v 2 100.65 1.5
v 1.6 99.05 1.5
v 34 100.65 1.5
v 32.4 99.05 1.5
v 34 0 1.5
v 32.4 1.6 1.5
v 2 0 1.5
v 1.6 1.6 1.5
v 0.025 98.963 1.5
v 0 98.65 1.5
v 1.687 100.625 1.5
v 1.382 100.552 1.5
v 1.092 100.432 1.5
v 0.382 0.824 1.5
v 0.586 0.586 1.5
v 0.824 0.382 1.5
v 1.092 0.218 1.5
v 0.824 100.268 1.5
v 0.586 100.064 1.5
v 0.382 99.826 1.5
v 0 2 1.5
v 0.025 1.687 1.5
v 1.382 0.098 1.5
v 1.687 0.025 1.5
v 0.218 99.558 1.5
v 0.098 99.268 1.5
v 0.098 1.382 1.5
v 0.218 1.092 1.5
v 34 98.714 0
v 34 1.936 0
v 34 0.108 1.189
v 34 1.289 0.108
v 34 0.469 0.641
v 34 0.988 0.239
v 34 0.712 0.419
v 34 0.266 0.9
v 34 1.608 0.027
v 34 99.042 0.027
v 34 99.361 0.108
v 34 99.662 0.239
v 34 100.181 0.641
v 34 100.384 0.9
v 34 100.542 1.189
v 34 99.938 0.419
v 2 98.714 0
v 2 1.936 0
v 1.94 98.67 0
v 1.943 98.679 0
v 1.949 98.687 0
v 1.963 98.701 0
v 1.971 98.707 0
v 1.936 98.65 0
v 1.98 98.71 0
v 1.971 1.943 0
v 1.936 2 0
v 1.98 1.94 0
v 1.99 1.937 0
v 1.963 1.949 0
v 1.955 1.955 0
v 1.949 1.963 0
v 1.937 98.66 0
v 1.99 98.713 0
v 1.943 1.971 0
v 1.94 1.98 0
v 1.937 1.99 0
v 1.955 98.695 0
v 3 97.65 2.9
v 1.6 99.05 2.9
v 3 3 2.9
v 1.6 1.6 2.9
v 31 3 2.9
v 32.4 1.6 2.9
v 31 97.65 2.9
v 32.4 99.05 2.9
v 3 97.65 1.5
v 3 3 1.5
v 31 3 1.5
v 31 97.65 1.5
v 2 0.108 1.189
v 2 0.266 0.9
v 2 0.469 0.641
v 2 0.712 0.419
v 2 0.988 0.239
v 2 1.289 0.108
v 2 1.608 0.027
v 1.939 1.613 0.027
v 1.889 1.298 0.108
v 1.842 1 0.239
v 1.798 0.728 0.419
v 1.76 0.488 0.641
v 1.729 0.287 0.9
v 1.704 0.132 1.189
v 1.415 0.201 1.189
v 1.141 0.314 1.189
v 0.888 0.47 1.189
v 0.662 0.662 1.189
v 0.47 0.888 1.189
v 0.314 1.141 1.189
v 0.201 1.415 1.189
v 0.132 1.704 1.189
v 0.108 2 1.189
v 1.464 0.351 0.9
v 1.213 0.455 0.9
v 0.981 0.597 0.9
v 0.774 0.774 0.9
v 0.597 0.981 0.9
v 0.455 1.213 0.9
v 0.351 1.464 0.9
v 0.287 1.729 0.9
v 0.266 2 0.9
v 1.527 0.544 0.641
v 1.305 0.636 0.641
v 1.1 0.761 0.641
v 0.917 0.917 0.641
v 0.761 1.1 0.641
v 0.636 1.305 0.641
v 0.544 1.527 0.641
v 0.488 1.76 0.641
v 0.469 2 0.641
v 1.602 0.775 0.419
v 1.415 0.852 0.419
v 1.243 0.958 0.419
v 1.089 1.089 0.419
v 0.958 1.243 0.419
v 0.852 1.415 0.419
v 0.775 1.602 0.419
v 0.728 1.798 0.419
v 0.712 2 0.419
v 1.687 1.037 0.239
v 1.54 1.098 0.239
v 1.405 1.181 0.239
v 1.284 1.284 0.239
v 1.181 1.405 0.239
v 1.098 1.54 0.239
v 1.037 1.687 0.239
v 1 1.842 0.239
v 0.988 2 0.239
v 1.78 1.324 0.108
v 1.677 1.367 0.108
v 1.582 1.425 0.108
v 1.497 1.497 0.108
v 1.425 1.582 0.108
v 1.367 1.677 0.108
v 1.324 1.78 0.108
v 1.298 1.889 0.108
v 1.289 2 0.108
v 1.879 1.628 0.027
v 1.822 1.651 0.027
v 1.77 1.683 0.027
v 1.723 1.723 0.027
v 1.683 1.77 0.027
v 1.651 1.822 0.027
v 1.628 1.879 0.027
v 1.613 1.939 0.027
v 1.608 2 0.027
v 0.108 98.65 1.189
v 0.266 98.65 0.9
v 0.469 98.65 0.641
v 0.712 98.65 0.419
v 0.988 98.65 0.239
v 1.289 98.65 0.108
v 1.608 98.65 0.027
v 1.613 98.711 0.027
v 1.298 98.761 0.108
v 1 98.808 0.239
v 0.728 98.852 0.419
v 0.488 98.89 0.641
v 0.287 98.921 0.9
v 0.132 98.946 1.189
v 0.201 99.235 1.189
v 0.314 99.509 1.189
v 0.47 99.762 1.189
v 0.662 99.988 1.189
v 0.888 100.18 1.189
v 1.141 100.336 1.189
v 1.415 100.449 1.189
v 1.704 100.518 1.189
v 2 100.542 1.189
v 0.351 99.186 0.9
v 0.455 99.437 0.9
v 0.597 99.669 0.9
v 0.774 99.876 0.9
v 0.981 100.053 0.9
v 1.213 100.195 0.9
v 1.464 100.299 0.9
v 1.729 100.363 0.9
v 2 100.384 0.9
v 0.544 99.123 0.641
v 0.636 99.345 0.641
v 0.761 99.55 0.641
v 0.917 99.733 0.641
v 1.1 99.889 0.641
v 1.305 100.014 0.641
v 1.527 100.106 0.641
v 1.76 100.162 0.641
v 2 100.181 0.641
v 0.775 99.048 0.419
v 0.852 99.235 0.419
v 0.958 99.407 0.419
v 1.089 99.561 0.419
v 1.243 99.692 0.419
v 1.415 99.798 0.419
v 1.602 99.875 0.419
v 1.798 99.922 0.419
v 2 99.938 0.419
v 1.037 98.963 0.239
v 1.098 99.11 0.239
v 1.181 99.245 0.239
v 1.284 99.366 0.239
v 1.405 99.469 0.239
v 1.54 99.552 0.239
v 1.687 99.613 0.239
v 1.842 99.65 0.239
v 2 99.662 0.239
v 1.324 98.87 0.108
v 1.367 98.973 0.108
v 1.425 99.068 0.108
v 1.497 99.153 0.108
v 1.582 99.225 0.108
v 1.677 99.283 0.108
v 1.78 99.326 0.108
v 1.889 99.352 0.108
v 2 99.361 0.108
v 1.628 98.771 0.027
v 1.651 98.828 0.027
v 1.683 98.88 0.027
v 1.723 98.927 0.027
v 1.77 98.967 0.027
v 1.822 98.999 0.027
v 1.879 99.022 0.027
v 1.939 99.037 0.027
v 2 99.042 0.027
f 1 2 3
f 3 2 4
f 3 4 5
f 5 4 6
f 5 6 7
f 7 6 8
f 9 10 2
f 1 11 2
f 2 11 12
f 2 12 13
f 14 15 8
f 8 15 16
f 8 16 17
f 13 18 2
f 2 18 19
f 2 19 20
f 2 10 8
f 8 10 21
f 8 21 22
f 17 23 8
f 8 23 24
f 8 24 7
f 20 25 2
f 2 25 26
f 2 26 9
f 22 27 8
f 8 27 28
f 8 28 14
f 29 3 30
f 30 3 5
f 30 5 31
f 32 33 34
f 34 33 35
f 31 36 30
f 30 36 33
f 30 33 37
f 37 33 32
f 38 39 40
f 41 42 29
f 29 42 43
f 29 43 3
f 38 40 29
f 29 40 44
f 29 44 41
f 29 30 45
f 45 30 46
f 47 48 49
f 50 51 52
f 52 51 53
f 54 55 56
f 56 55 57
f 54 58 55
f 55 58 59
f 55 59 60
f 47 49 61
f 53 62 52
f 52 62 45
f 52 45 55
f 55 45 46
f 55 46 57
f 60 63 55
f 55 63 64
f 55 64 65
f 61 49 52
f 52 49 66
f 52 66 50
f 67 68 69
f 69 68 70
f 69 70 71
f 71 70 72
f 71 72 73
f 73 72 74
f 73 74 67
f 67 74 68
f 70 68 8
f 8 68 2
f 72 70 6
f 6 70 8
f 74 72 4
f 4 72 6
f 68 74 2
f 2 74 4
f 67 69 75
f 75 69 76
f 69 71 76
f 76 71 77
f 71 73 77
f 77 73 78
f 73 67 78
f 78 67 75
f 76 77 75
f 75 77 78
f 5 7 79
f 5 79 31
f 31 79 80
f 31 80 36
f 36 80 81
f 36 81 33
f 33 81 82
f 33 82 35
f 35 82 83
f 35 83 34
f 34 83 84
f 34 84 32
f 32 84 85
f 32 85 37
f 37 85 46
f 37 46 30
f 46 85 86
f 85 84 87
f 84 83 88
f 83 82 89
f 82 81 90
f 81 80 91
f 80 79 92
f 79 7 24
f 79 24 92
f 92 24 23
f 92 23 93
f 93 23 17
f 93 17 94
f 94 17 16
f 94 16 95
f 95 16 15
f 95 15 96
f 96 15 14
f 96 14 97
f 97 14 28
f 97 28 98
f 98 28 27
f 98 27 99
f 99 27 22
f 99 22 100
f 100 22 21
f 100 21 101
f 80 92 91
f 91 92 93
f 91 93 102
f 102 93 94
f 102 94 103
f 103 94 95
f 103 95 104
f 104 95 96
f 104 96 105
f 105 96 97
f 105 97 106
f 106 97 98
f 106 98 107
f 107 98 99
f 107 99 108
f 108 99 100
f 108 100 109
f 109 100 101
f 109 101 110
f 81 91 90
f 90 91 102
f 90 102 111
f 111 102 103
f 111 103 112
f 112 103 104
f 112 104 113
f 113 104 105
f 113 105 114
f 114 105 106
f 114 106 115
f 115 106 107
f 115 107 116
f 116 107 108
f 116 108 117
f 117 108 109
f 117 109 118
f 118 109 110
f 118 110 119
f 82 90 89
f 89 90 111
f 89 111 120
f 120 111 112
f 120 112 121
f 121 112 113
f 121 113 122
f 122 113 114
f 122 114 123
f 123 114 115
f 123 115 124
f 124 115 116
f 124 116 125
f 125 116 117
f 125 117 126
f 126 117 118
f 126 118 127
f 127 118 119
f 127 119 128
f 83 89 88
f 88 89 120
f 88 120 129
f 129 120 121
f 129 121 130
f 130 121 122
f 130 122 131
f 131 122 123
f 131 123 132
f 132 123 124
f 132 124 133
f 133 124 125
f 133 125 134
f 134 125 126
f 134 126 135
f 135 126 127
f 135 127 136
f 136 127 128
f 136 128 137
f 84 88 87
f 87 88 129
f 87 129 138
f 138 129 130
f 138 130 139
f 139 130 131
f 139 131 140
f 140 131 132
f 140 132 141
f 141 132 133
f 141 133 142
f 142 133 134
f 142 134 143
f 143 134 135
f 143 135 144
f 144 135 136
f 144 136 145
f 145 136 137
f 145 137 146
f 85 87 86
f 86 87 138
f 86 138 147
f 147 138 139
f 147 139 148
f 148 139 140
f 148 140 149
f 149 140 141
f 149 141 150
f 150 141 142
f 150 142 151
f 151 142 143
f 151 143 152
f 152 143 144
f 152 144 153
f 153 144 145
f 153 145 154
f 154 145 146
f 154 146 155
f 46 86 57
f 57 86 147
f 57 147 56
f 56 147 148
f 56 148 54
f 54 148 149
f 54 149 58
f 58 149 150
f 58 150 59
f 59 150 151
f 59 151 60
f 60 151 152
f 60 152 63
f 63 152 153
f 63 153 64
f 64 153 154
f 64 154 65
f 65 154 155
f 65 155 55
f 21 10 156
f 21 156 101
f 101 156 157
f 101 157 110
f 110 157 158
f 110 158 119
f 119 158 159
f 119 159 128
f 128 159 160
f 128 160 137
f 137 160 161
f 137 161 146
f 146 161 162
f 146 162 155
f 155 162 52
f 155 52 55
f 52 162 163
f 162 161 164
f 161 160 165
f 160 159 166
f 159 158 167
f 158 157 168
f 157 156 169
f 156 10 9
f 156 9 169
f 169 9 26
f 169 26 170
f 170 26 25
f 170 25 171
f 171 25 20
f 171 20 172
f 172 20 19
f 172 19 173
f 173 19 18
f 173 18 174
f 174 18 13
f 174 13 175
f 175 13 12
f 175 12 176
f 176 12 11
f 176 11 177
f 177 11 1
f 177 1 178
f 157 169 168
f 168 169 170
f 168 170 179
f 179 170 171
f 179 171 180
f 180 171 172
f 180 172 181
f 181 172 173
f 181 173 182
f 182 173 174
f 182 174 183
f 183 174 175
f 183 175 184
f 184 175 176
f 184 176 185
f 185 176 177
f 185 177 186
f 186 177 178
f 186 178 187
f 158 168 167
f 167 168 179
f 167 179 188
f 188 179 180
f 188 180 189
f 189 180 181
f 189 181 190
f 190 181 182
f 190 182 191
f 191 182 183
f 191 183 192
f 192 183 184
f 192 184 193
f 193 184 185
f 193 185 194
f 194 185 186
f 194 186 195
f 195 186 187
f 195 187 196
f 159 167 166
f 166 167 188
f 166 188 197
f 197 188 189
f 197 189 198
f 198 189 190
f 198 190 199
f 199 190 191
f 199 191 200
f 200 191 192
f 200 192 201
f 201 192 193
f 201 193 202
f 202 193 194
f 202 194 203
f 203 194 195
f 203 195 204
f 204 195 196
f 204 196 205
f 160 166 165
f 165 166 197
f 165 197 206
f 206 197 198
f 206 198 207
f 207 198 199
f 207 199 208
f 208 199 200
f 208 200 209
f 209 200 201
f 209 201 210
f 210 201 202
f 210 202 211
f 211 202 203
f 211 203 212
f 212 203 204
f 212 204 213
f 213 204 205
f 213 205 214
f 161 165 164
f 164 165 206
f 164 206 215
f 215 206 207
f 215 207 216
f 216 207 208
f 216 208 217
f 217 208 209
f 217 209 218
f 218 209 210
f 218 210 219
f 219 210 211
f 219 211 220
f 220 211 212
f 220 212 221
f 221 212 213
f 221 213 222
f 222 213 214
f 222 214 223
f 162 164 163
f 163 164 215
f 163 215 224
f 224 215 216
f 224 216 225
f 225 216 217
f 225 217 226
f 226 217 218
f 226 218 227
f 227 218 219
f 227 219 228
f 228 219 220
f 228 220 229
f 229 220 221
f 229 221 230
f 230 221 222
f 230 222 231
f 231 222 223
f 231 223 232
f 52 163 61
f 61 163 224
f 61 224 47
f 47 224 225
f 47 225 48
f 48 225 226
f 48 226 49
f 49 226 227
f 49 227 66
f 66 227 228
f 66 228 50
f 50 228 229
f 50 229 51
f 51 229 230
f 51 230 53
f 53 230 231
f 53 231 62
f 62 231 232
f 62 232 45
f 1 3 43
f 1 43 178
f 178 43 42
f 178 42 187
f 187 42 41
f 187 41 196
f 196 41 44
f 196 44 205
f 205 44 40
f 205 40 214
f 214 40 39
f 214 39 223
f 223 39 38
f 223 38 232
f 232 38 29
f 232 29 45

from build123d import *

# Parameters (mm, degrees)
ESQUISSE1_W        = 34
ESQUISSE1_H        = 100.65
BOSS_EXTRU_1_DEPTH = 1.5
ESQUISSE2_W        = 30.8
ESQUISSE2_H        = 97.45
ESQUISSE2_W_2      = 28
ESQUISSE2_H_2      = 94.65
BOSS_EXTRU_2_DEPTH = 1.4
CONG_6_R           = 2
CONG_8_R           = 2
CONG_9_R           = 2


with BuildPart() as part:
    # Esquisse1 → Boss.-Extru.1 (new body)
    with BuildSketch(Plane.XY):
        with Locations((17, 50.325)):
            Rectangle(ESQUISSE1_W, ESQUISSE1_H)
    extrude(amount=BOSS_EXTRU_1_DEPTH)

    # Esquisse2 → Boss.-Extru.2 (add)
    with BuildSketch(Plane.XY.offset(1.5)):
        with Locations((17, 50.325)):
            Rectangle(ESQUISSE2_W, ESQUISSE2_H)
        with Locations((17, 50.325)):
            Rectangle(ESQUISSE2_W_2, ESQUISSE2_H_2, mode=Mode.SUBTRACT)
    extrude(amount=BOSS_EXTRU_2_DEPTH)

    # Congé6
    cong_6_edges = [part.edges().sort_by_distance(p)[0] for p in [
        (0, 0, 0.75),
    ]]
    fillet(cong_6_edges, radius=CONG_6_R)

    # Congé8
    cong_8_edges = [part.edges().sort_by_distance(p)[0] for p in [
        (0, 100.65, 0.75),
    ]]
    fillet(cong_8_edges, radius=CONG_8_R)

    # Congé9
    # the kernel refuses this fillet: 2 mm, written as the material it takes off along each edge
    with BuildSketch(Plane(origin=(38.841229183, 100.65, 0), x_dir=(0, -1, 0), z_dir=(-1, 0, 0)), Plane(origin=(2, 0, 0), x_dir=(0, 1, 0), z_dir=(1, 0, 0))) as cong_9_piece_1:
        with BuildLine():
            CenterArc((1.936491673, 2), CONG_9_R, 194.477512186, 75.522487814)
            Line((0, 1.5), (-0.038729833, 1.49))
            ThreePointArc((-0.038729833, 1.49), (-0.04, 0.75), (-0.04, 0))
            Line((-0.04, 0), (0, -0.04))
            Line((0, -0.04), (1.936491673, -0.04))
            Line((1.936491673, -0.04), (1.936491673, 0))
        make_face()
    extrude(amount=36.841229183, mode=Mode.SUBTRACT)
    with BuildSketch(Plane(origin=(2, 98.65, 0), x_dir=(-1, 0, 0), z_dir=(0, -1, 0))) as cong_9_piece_2:
        with BuildLine():
            CenterArc((0.063508327, -2), CONG_9_R, 14.477512186, 75.522487814)
            Line((2, -1.5), (2.038729833, -1.49))
            ThreePointArc((2.038729833, -1.49), (2.04, -0.75), (2.04, 0))
            Line((2.04, 0), (2, 0.04))
            Line((2, 0.04), (0.063508327, 0.04))
            Line((0.063508327, 0.04), (0.063508327, 0))
        make_face()
    revolve(axis=Axis((2, 98.65, 0), (0, 0, -1)), revolution_arc=90, mode=Mode.SUBTRACT)
    with BuildSketch(Plane(origin=(0, 98.65, 0), x_dir=(1, 0, 0), z_dir=(0, -1, 0))) as cong_9_piece_3:
        with BuildLine():
            CenterArc((1.936491673, 2), CONG_9_R, 194.477512186, 75.522487814)
            Line((0, 1.5), (-0.038729833, 1.49))
            ThreePointArc((-0.038729833, 1.49), (-0.04, 0.75), (-0.04, 0))
            Line((-0.04, 0), (0, -0.04))
            Line((0, -0.04), (1.936491673, -0.04))
            Line((1.936491673, -0.04), (1.936491673, 0))
        make_face()
    extrude(amount=96.65, mode=Mode.SUBTRACT)
    with BuildSketch(Plane(origin=(2, 2, 0), x_dir=(0, -1, 0), z_dir=(1, 0, 0))) as cong_9_piece_4:
        with BuildLine():
            CenterArc((0.063508327, -2), CONG_9_R, 14.477512186, 75.522487814)
            Line((2, -1.5), (2.038729833, -1.49))
            ThreePointArc((2.038729833, -1.49), (2.04, -0.75), (2.04, 0))
            Line((2.04, 0), (2, 0.04))
            Line((2, 0.04), (0.063508327, 0.04))
            Line((0.063508327, 0.04), (0.063508327, 0))
        make_face()
    revolve(axis=Axis((2, 2, 0), (0, 0, -1)), revolution_arc=90, mode=Mode.SUBTRACT)


solid = part.part
